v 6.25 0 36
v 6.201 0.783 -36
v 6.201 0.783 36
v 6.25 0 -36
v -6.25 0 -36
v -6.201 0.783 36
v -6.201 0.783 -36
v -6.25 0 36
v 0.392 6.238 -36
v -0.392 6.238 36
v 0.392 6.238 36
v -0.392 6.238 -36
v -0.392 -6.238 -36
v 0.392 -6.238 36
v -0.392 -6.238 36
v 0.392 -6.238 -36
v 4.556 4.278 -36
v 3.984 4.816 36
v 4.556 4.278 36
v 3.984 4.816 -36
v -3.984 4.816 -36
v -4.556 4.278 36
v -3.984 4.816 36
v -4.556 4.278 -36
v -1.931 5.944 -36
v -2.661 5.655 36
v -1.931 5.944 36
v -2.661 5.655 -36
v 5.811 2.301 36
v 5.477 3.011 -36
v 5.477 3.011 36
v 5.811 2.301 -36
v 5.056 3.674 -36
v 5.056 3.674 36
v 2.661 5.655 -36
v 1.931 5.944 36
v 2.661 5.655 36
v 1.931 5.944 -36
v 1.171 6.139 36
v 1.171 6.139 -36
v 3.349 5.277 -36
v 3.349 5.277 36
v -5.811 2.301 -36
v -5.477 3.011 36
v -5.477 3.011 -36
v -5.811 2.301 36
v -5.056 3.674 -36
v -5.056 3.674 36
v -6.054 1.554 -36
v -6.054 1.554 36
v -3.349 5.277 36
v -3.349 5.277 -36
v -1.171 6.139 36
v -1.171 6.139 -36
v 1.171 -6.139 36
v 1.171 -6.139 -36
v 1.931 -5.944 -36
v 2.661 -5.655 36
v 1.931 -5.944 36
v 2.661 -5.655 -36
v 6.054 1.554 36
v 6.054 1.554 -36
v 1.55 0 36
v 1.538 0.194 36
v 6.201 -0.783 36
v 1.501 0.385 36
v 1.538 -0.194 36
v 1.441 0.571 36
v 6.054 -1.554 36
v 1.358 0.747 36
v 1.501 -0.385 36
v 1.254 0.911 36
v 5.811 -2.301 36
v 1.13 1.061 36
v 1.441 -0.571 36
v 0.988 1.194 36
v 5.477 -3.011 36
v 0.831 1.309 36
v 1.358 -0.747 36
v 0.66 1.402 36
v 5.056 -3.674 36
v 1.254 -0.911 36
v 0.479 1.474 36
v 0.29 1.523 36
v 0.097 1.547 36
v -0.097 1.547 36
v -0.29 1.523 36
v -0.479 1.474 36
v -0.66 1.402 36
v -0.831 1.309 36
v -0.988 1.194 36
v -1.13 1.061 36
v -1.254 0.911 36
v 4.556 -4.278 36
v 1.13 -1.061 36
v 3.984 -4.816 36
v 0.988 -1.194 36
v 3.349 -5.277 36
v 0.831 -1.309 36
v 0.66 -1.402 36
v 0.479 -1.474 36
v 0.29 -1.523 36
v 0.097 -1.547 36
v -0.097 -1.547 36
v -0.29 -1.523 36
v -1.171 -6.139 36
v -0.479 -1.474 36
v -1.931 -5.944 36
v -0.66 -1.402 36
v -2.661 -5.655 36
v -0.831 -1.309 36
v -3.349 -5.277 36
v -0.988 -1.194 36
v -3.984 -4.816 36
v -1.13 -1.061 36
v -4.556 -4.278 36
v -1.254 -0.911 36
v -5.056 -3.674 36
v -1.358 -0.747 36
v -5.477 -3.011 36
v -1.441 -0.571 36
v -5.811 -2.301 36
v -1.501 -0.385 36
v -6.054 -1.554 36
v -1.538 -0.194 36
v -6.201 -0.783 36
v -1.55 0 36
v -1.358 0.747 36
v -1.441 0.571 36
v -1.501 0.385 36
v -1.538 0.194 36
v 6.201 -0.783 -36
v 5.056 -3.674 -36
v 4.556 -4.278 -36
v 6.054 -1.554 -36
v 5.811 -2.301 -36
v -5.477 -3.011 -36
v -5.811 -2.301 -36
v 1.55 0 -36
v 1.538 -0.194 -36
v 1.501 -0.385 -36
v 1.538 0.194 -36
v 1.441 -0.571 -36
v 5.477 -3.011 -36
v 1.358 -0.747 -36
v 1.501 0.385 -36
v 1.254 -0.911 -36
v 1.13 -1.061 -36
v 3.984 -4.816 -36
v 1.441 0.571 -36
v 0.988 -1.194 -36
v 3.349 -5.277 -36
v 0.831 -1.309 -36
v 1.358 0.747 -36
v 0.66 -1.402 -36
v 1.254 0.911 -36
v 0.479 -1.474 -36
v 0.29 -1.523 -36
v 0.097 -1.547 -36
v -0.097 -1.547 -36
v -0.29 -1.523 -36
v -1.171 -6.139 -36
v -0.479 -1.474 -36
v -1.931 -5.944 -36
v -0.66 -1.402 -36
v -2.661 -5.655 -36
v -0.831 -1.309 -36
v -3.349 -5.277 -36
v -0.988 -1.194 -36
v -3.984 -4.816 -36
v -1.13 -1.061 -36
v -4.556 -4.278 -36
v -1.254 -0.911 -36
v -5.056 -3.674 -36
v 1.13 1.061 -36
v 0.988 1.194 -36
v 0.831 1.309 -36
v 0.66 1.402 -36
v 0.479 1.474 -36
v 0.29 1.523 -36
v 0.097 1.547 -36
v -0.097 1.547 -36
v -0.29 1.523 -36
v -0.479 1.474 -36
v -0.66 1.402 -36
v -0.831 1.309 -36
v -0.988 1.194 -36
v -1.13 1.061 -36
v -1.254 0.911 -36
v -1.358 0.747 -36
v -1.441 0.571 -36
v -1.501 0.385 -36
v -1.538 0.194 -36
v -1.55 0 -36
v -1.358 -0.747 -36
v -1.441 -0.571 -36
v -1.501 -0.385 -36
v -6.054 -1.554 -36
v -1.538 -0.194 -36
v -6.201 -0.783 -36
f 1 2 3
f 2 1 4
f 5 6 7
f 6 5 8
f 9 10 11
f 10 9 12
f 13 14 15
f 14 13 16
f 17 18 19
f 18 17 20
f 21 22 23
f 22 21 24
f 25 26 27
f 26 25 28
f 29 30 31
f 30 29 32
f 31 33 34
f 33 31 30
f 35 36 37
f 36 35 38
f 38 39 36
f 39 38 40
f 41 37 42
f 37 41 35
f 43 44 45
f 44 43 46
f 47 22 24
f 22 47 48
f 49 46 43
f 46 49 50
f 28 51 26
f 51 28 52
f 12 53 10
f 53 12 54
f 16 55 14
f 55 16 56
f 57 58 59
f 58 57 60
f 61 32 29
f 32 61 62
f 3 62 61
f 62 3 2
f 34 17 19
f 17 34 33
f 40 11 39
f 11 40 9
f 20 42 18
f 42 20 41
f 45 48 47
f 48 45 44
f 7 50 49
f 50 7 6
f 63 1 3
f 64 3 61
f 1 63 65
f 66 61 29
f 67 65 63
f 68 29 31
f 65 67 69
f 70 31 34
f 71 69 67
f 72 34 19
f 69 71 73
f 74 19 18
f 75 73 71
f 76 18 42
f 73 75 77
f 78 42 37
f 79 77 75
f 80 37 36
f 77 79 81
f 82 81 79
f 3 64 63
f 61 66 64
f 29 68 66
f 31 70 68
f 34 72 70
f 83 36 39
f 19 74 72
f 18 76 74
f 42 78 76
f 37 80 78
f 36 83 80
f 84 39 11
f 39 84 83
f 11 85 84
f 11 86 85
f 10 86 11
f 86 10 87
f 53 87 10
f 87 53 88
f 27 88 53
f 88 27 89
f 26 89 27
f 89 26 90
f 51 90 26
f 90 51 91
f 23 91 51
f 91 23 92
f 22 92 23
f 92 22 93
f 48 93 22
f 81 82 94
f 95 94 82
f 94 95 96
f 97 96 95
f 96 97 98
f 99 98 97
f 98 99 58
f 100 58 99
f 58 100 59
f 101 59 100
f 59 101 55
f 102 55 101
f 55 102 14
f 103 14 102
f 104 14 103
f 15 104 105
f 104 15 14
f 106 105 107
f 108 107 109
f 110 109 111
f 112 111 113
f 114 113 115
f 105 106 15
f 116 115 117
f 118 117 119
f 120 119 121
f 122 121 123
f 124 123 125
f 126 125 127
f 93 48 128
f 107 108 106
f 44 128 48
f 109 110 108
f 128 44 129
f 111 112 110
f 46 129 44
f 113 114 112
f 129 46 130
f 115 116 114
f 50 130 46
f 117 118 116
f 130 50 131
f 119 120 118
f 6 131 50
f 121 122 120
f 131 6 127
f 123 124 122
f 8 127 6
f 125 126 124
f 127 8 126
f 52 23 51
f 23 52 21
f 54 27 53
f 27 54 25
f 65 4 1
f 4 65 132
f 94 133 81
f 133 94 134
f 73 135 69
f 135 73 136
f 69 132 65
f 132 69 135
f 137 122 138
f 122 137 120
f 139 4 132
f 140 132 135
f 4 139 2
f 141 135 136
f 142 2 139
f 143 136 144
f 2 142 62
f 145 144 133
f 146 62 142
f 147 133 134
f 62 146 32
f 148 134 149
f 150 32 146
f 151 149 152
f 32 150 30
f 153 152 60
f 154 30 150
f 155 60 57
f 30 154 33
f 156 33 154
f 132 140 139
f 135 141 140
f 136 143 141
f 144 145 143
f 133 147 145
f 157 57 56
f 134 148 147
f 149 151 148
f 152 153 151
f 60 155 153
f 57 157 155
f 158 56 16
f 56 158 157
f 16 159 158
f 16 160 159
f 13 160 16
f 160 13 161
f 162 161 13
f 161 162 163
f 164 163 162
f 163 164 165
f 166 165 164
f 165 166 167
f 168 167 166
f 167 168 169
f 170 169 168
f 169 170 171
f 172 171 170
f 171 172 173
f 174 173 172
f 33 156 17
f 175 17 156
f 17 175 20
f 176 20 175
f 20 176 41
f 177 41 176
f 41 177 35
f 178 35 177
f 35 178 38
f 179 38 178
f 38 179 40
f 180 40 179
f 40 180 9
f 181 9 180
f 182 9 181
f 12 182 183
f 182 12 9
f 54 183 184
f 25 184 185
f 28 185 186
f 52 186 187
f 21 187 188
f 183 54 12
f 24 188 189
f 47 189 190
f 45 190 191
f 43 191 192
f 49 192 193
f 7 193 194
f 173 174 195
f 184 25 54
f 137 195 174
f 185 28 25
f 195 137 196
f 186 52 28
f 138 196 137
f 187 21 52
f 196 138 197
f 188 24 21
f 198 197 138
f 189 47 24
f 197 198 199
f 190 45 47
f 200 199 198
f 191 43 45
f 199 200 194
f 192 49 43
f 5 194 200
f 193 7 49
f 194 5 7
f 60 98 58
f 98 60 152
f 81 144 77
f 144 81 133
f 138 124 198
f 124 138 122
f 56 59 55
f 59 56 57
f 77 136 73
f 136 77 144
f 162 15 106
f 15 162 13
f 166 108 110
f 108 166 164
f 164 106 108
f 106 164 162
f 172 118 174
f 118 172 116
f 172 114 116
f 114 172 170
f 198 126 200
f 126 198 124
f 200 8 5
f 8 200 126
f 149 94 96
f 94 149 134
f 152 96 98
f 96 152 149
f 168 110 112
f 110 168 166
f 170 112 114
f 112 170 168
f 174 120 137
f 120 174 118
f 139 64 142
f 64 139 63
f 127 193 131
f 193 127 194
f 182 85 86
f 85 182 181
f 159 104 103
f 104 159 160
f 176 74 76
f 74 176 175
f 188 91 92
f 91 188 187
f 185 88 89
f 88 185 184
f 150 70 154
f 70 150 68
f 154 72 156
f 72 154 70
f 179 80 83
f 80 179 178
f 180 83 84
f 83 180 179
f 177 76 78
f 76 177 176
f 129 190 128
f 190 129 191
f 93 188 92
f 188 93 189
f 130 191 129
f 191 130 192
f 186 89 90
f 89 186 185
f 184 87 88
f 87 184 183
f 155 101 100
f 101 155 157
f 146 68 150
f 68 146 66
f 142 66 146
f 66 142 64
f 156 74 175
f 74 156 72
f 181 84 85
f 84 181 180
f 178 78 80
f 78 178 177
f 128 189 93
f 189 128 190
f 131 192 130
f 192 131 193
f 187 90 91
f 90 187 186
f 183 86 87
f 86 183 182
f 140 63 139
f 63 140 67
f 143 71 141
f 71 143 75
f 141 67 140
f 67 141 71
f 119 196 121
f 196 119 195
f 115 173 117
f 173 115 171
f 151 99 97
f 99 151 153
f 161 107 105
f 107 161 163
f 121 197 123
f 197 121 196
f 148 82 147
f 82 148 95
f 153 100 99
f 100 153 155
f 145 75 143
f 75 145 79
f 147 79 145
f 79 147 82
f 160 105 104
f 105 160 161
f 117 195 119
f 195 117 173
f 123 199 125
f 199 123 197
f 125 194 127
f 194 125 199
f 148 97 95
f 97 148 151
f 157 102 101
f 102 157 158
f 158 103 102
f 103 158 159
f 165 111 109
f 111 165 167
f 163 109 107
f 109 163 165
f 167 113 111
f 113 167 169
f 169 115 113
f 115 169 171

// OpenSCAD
$fn = 50;


difference() {
	union() {
		translate(v = [0, 0, -36.0000000000]) {
			cylinder(h = 72, r = 6.2500000000);
		}
	}
	union() {
		translate(v = [0, 0, -100.0000000000]) {
			cylinder(h = 200, r = 1.5500000000);
		}
	}
}
